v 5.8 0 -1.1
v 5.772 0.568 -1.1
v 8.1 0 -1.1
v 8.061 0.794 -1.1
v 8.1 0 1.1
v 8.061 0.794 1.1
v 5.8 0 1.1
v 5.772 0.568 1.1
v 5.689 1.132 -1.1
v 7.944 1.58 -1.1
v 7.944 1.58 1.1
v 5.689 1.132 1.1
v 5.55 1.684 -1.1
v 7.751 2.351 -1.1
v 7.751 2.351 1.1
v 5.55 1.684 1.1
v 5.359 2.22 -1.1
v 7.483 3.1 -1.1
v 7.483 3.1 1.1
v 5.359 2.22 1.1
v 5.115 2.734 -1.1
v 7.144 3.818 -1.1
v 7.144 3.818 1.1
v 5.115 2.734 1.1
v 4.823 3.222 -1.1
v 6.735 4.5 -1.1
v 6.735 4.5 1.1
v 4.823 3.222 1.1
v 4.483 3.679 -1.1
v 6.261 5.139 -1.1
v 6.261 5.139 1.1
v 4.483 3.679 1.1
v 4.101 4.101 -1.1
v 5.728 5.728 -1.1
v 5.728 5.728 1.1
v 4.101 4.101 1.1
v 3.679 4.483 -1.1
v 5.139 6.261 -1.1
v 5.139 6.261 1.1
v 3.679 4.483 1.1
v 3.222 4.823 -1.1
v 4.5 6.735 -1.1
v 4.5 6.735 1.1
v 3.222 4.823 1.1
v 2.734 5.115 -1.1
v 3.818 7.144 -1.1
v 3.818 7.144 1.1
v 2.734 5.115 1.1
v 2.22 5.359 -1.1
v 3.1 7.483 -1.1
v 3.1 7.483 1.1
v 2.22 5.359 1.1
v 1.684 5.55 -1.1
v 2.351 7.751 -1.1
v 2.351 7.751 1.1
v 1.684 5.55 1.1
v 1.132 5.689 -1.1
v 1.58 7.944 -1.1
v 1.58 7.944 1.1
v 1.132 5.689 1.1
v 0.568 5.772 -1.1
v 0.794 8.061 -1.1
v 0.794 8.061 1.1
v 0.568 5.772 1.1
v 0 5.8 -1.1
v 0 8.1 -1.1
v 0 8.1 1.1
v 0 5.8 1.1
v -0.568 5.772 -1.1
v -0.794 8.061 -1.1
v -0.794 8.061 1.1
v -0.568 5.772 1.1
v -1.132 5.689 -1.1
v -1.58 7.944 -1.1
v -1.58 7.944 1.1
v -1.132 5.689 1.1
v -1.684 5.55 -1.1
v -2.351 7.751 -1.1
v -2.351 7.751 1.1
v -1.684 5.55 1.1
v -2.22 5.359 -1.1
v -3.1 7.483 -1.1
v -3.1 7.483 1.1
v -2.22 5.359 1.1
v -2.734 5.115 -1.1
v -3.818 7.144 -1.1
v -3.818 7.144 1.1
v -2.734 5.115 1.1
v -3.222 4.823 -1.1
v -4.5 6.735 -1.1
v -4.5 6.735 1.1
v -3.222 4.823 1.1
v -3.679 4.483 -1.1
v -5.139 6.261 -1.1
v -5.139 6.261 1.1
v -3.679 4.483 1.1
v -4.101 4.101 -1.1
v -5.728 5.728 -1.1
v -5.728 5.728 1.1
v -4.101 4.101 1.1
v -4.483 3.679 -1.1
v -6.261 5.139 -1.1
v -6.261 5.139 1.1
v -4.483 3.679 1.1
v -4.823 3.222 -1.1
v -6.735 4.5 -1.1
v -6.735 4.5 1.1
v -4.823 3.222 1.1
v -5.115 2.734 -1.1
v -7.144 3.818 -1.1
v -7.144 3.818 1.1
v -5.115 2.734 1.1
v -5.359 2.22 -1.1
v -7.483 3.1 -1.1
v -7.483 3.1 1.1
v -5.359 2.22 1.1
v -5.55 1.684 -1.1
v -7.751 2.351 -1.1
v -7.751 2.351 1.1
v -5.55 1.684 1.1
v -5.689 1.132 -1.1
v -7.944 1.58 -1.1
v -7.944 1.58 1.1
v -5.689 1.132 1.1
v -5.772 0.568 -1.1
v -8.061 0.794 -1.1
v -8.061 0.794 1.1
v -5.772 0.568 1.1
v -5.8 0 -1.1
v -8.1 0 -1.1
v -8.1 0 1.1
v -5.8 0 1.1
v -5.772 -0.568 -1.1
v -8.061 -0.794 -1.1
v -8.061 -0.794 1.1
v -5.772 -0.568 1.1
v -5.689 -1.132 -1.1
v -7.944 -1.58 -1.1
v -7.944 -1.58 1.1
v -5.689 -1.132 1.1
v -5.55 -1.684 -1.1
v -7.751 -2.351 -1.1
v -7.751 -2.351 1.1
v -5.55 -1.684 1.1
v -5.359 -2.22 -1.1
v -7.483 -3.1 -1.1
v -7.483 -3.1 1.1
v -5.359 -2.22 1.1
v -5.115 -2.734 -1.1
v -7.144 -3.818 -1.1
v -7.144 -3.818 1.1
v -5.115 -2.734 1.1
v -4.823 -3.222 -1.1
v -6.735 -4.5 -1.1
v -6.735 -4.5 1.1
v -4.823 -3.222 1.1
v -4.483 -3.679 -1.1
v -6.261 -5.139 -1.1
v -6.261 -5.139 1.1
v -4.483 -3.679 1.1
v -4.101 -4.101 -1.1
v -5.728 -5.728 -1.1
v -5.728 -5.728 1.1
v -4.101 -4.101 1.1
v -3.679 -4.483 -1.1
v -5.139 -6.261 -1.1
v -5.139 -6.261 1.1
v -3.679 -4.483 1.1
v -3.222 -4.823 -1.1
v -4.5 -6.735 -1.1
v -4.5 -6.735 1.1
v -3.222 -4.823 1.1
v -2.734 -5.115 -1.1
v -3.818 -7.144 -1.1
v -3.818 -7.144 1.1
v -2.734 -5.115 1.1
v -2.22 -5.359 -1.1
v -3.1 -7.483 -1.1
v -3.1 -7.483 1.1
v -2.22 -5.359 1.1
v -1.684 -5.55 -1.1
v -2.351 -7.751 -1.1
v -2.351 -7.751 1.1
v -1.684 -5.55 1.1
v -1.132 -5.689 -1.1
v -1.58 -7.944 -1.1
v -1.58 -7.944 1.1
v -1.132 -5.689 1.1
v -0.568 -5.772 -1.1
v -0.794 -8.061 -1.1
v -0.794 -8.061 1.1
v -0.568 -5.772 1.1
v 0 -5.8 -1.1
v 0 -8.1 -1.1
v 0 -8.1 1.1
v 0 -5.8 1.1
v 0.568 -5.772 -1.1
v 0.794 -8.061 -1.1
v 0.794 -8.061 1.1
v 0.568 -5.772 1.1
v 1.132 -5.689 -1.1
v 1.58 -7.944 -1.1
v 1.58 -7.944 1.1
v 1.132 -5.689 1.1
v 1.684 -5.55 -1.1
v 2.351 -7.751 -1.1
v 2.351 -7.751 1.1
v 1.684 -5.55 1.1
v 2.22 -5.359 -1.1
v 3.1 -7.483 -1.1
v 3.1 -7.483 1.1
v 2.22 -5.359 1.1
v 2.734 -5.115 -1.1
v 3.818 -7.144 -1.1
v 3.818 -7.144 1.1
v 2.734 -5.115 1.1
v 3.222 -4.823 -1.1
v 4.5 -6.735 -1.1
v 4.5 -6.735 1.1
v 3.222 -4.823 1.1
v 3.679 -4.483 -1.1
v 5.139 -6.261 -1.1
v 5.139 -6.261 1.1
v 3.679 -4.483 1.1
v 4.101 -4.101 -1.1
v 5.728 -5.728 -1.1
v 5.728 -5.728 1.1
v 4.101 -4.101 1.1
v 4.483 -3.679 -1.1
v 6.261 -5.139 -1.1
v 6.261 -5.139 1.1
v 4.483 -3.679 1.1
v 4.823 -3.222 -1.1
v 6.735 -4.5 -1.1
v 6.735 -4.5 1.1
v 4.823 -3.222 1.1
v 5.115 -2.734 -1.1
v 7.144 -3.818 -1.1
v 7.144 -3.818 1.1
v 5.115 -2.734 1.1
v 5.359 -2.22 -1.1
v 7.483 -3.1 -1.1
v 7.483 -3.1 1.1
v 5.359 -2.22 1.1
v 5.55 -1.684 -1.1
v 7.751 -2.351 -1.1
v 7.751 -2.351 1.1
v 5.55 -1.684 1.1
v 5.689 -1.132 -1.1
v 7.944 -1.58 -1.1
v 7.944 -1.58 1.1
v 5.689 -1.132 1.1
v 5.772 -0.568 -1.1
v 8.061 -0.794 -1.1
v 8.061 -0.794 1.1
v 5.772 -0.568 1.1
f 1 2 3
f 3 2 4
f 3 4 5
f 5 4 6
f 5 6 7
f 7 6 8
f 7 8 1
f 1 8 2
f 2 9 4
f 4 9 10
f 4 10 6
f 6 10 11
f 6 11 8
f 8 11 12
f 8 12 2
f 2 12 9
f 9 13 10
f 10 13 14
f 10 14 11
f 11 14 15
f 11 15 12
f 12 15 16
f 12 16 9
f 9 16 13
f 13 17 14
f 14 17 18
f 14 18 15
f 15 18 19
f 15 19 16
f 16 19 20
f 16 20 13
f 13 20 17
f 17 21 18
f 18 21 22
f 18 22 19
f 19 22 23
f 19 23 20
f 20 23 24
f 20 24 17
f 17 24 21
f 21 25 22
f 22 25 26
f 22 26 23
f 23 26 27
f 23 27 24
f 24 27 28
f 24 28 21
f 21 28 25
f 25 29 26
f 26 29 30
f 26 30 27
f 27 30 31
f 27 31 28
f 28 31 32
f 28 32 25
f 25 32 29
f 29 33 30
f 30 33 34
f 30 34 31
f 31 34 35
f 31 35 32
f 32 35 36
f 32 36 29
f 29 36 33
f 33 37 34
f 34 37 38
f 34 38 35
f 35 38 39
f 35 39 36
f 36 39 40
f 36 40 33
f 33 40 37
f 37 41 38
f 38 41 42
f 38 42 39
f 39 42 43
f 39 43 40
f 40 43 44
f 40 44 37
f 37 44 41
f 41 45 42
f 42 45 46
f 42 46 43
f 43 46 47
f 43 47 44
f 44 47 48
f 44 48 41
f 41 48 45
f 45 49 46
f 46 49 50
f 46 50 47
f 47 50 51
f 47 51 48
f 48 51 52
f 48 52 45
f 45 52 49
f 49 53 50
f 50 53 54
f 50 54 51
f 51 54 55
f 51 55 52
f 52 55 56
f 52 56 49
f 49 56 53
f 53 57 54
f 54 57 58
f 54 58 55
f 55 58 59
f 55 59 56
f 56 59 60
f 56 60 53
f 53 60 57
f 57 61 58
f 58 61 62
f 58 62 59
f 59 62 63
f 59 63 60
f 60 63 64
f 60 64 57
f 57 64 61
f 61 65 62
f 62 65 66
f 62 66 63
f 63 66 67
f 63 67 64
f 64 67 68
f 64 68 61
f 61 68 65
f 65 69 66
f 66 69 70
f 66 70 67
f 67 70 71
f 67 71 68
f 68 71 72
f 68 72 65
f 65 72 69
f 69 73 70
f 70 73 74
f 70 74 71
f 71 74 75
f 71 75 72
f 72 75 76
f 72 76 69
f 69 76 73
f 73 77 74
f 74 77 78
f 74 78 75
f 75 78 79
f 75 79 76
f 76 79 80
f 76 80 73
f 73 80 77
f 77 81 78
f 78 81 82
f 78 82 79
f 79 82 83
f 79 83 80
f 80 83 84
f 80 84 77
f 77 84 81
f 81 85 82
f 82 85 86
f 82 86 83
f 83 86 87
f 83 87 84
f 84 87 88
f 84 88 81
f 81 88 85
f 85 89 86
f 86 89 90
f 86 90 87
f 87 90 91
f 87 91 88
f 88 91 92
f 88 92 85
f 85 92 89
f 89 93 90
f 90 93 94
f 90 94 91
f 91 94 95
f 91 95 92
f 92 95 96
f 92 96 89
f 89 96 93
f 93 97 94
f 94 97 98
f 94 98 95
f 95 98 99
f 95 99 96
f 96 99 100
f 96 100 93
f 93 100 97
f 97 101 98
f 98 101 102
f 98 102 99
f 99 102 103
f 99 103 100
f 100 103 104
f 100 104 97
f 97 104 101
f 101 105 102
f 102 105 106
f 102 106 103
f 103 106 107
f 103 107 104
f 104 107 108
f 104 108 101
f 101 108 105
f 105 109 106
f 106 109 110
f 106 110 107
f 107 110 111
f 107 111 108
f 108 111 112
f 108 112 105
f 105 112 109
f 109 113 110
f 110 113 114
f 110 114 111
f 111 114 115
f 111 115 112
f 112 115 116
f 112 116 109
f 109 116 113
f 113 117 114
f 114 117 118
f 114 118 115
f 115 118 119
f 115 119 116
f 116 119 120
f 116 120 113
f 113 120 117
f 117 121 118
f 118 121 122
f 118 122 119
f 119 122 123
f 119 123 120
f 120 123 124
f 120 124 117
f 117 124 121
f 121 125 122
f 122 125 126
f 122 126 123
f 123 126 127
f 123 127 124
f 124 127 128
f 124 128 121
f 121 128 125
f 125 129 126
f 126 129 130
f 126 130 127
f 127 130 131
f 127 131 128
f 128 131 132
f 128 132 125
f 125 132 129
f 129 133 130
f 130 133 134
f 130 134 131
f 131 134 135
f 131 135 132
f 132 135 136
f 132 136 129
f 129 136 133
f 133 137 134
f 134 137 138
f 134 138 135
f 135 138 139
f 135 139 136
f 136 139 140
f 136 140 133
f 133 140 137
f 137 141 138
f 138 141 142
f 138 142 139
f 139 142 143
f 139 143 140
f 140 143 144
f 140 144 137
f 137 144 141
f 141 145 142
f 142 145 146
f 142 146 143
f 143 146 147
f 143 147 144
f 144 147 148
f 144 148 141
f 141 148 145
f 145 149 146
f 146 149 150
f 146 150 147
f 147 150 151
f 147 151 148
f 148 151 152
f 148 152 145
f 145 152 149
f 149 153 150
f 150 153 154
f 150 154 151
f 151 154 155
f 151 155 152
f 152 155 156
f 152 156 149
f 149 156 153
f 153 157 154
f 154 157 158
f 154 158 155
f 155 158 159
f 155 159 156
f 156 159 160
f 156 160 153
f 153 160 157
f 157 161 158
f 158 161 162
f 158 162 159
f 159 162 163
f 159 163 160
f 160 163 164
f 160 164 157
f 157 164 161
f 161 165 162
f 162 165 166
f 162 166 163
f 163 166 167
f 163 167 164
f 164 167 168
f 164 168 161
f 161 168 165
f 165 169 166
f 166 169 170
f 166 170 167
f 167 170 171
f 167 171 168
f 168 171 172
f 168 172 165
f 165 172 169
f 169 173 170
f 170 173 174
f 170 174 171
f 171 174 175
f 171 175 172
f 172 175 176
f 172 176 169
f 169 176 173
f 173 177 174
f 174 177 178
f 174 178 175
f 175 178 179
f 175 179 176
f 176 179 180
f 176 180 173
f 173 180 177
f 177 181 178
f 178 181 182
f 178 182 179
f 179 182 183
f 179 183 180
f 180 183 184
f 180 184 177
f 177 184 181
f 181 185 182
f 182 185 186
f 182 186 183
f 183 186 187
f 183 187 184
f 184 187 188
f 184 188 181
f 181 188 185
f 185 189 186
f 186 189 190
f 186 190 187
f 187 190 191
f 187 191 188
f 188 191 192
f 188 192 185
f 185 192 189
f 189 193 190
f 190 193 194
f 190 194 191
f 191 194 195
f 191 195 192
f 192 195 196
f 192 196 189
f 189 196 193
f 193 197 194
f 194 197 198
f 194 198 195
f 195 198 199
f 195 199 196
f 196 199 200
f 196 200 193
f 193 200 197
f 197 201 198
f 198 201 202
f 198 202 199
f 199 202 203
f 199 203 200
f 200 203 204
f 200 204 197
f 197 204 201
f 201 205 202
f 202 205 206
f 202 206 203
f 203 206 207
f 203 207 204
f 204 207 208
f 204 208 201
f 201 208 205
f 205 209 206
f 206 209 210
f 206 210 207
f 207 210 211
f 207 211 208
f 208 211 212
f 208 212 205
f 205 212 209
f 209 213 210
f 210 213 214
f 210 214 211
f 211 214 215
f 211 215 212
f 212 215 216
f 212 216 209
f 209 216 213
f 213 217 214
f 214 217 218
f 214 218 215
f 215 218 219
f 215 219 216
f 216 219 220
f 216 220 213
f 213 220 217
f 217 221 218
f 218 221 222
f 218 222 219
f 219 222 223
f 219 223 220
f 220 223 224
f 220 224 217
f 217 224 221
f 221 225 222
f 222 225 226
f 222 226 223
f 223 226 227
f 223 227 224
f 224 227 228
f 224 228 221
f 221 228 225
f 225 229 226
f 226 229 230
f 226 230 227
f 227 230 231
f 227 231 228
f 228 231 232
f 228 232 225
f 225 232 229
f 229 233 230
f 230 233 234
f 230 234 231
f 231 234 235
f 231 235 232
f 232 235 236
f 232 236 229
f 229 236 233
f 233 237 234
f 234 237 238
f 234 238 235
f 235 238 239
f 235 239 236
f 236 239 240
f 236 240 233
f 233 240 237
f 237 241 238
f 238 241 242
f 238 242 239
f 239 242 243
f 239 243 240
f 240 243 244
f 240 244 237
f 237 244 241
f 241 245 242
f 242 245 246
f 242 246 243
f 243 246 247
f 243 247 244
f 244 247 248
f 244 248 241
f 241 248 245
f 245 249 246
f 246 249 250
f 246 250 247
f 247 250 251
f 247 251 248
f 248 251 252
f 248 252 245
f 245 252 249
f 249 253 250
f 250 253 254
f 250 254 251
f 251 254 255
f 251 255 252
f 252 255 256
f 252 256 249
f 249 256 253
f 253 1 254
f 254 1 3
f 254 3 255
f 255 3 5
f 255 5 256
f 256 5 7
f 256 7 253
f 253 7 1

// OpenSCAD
/*
Yamper V11 mesh source for yamper_v11_round_inmp441_mic_retainer.stl
Units: millimeters

This source keeps the restored V11 STL geometry as a plain OpenSCAD polyhedron.
It is not a new redesign. It exists so the CAD source, STL, and STEP exports stay together.
*/

module yamper_v11_round_inmp441_mic_retainer() {
    pts = [
        [5.8, 0, -1.1],
        [5.772071, 0.568499, -1.1],
        [8.1, 0, -1.1],
        [8.060996, 0.793939, -1.1],
        [8.1, 0, 1.1],
        [8.060996, 0.793939, 1.1],
        [5.8, 0, 1.1],
        [5.772071, 0.568499, 1.1],
        [5.688555, 1.131524, -1.1],
        [7.944361, 1.580232, -1.1],
        [7.944361, 1.580232, 1.1],
        [5.688555, 1.131524, 1.1],
        [5.550254, 1.683651, -1.1],
        [7.751217, 2.351306, -1.1],
        [7.751217, 2.351306, 1.1],
        [5.550254, 1.683651, 1.1],
        [5.358501, 2.219564, -1.1],
        [7.483424, 3.099736, -1.1],
        [7.483424, 3.099736, 1.1],
        [5.358501, 2.219564, 1.1],
        [5.115143, 2.734101, -1.1],
        [7.143562, 3.818314, -1.1],
        [7.143562, 3.818314, 1.1],
        [5.115143, 2.734101, 1.1],
        [4.822524, 3.222307, -1.1],
        [6.734904, 4.500119, -1.1],
        [6.734904, 4.500119, 1.1],
        [4.822524, 3.222307, 1.1],
        [4.48346, 3.679481, -1.1],
        [6.261384, 5.138586, -1.1],
        [6.261384, 5.138586, 1.1],
        [4.48346, 3.679481, 1.1],
        [4.101219, 4.101219, -1.1],
        [5.727565, 5.727565, -1.1],
        [5.727565, 5.727565, 1.1],
        [4.101219, 4.101219, 1.1],
        [3.679481, 4.48346, -1.1],
        [5.138586, 6.261384, -1.1],
        [5.138586, 6.261384, 1.1],
        [3.679481, 4.48346, 1.1],
        [3.222307, 4.822524, -1.1],
        [4.500119, 6.734904, -1.1],
        [4.500119, 6.734904, 1.1],
        [3.222307, 4.822524, 1.1],
        [2.734101, 5.115143, -1.1],
        [3.818314, 7.143562, -1.1],
        [3.818314, 7.143562, 1.1],
        [2.734101, 5.115143, 1.1],
        [2.219564, 5.358501, -1.1],
        [3.099736, 7.483424, -1.1],
        [3.099736, 7.483424, 1.1],
        [2.219564, 5.358501, 1.1],
        [1.683651, 5.550254, -1.1],
        [2.351306, 7.751217, -1.1],
        [2.351306, 7.751217, 1.1],
        [1.683651, 5.550254, 1.1],
        [1.131524, 5.688555, -1.1],
        [1.580232, 7.944361, -1.1],
        [1.580232, 7.944361, 1.1],
        [1.131524, 5.688555, 1.1],
        [0.568499, 5.772071, -1.1],
        [0.793939, 8.060996, -1.1],
        [0.793939, 8.060996, 1.1],
        [0.568499, 5.772071, 1.1],
        [0, 5.8, -1.1],
        [0, 8.1, -1.1],
        [0, 8.1, 1.1],
        [0, 5.8, 1.1],
        [-0.568499, 5.772071, -1.1],
        [-0.793939, 8.060996, -1.1],
        [-0.793939, 8.060996, 1.1],
        [-0.568499, 5.772071, 1.1],
        [-1.131524, 5.688555, -1.1],
        [-1.580232, 7.944361, -1.1],
        [-1.580232, 7.944361, 1.1],
        [-1.131524, 5.688555, 1.1],
        [-1.683651, 5.550254, -1.1],
        [-2.351306, 7.751217, -1.1],
        [-2.351306, 7.751217, 1.1],
        [-1.683651, 5.550254, 1.1],
        [-2.219564, 5.358501, -1.1],
        [-3.099736, 7.483424, -1.1],
        [-3.099736, 7.483424, 1.1],
        [-2.219564, 5.358501, 1.1],
        [-2.734101, 5.115143, -1.1],
        [-3.818314, 7.143562, -1.1],
        [-3.818314, 7.143562, 1.1],
        [-2.734101, 5.115143, 1.1],
        [-3.222307, 4.822524, -1.1],
        [-4.500119, 6.734904, -1.1],
        [-4.500119, 6.734904, 1.1],
        [-3.222307, 4.822524, 1.1],
        [-3.679481, 4.48346, -1.1],
        [-5.138586, 6.261384, -1.1],
        [-5.138586, 6.261384, 1.1],
        [-3.679481, 4.48346, 1.1],
        [-4.101219, 4.101219, -1.1],
        [-5.727565, 5.727565, -1.1],
        [-5.727565, 5.727565, 1.1],
        [-4.101219, 4.101219, 1.1],
        [-4.48346, 3.679481, -1.1],
        [-6.261384, 5.138586, -1.1],
        [-6.261384, 5.138586, 1.1],
        [-4.48346, 3.679481, 1.1],
        [-4.822524, 3.222307, -1.1],
        [-6.734904, 4.500119, -1.1],
        [-6.734904, 4.500119, 1.1],
        [-4.822524, 3.222307, 1.1],
        [-5.115143, 2.734101, -1.1],
        [-7.143562, 3.818314, -1.1],
        [-7.143562, 3.818314, 1.1],
        [-5.115143, 2.734101, 1.1],
        [-5.358501, 2.219564, -1.1],
        [-7.483424, 3.099736, -1.1],
        [-7.483424, 3.099736, 1.1],
        [-5.358501, 2.219564, 1.1],
        [-5.550254, 1.683651, -1.1],
        [-7.751217, 2.351306, -1.1],
        [-7.751217, 2.351306, 1.1],
        [-5.550254, 1.683651, 1.1],
        [-5.688555, 1.131524, -1.1],
        [-7.944361, 1.580232, -1.1],
        [-7.944361, 1.580232, 1.1],
        [-5.688555, 1.131524, 1.1],
        [-5.772071, 0.568499, -1.1],
        [-8.060996, 0.793939, -1.1],
        [-8.060996, 0.793939, 1.1],
        [-5.772071, 0.568499, 1.1],
        [-5.8, 0, -1.1],
        [-8.1, 0, -1.1],
        [-8.1, 0, 1.1],
        [-5.8, 0, 1.1],
        [-5.772071, -0.568499, -1.1],
        [-8.060996, -0.793939, -1.1],
        [-8.060996, -0.793939, 1.1],
        [-5.772071, -0.568499, 1.1],
        [-5.688555, -1.131524, -1.1],
        [-7.944361, -1.580232, -1.1],
        [-7.944361, -1.580232, 1.1],
        [-5.688555, -1.131524, 1.1],
        [-5.550254, -1.683651, -1.1],
        [-7.751217, -2.351306, -1.1],
        [-7.751217, -2.351306, 1.1],
        [-5.550254, -1.683651, 1.1],
        [-5.358501, -2.219564, -1.1],
        [-7.483424, -3.099736, -1.1],
        [-7.483424, -3.099736, 1.1],
        [-5.358501, -2.219564, 1.1],
        [-5.115143, -2.734101, -1.1],
        [-7.143562, -3.818314, -1.1],
        [-7.143562, -3.818314, 1.1],
        [-5.115143, -2.734101, 1.1],
        [-4.822524, -3.222307, -1.1],
        [-6.734904, -4.500119, -1.1],
        [-6.734904, -4.500119, 1.1],
        [-4.822524, -3.222307, 1.1],
        [-4.48346, -3.679481, -1.1],
        [-6.261384, -5.138586, -1.1],
        [-6.261384, -5.138586, 1.1],
        [-4.48346, -3.679481, 1.1],
        [-4.101219, -4.101219, -1.1],
        [-5.727565, -5.727565, -1.1],
        [-5.727565, -5.727565, 1.1],
        [-4.101219, -4.101219, 1.1],
        [-3.679481, -4.48346, -1.1],
        [-5.138586, -6.261384, -1.1],
        [-5.138586, -6.261384, 1.1],
        [-3.679481, -4.48346, 1.1],
        [-3.222307, -4.822524, -1.1],
        [-4.500119, -6.734904, -1.1],
        [-4.500119, -6.734904, 1.1],
        [-3.222307, -4.822524, 1.1],
        [-2.734101, -5.115143, -1.1],
        [-3.818314, -7.143562, -1.1],
        [-3.818314, -7.143562, 1.1],
        [-2.734101, -5.115143, 1.1],
        [-2.219564, -5.358501, -1.1],
        [-3.099736, -7.483424, -1.1],
        [-3.099736, -7.483424, 1.1],
        [-2.219564, -5.358501, 1.1],
        [-1.683651, -5.550254, -1.1],
        [-2.351306, -7.751217, -1.1],
        [-2.351306, -7.751217, 1.1],
        [-1.683651, -5.550254, 1.1],
        [-1.131524, -5.688555, -1.1],
        [-1.580232, -7.944361, -1.1],
        [-1.580232, -7.944361, 1.1],
        [-1.131524, -5.688555, 1.1],
        [-0.568499, -5.772071, -1.1],
        [-0.793939, -8.060996, -1.1],
        [-0.793939, -8.060996, 1.1],
        [-0.568499, -5.772071, 1.1],
        [0, -5.8, -1.1],
        [0, -8.1, -1.1],
        [0, -8.1, 1.1],
        [0, -5.8, 1.1],
        [0.568499, -5.772071, -1.1],
        [0.793939, -8.060996, -1.1],
        [0.793939, -8.060996, 1.1],
        [0.568499, -5.772071, 1.1],
        [1.131524, -5.688555, -1.1],
        [1.580232, -7.944361, -1.1],
        [1.580232, -7.944361, 1.1],
        [1.131524, -5.688555, 1.1],
        [1.683651, -5.550254, -1.1],
        [2.351306, -7.751217, -1.1],
        [2.351306, -7.751217, 1.1],
        [1.683651, -5.550254, 1.1],
        [2.219564, -5.358501, -1.1],
        [3.099736, -7.483424, -1.1],
        [3.099736, -7.483424, 1.1],
        [2.219564, -5.358501, 1.1],
        [2.734101, -5.115143, -1.1],
        [3.818314, -7.143562, -1.1],
        [3.818314, -7.143562, 1.1],
        [2.734101, -5.115143, 1.1],
        [3.222307, -4.822524, -1.1],
        [4.500119, -6.734904, -1.1],
        [4.500119, -6.734904, 1.1],
        [3.222307, -4.822524, 1.1],
        [3.679481, -4.48346, -1.1],
        [5.138586, -6.261384, -1.1],
        [5.138586, -6.261384, 1.1],
        [3.679481, -4.48346, 1.1],
        [4.101219, -4.101219, -1.1],
        [5.727565, -5.727565, -1.1],
        [5.727565, -5.727565, 1.1],
        [4.101219, -4.101219, 1.1],
        [4.48346, -3.679481, -1.1],
        [6.261384, -5.138586, -1.1],
        [6.261384, -5.138586, 1.1],
        [4.48346, -3.679481, 1.1],
        [4.822524, -3.222307, -1.1],
        [6.734904, -4.500119, -1.1],
        [6.734904, -4.500119, 1.1],
        [4.822524, -3.222307, 1.1],
        [5.115143, -2.734101, -1.1],
        [7.143562, -3.818314, -1.1],
        [7.143562, -3.818314, 1.1],
        [5.115143, -2.734101, 1.1],
        [5.358501, -2.219564, -1.1],
        [7.483424, -3.099736, -1.1],
        [7.483424, -3.099736, 1.1],
        [5.358501, -2.219564, 1.1],
        [5.550254, -1.683651, -1.1],
        [7.751217, -2.351306, -1.1],
        [7.751217, -2.351306, 1.1],
        [5.550254, -1.683651, 1.1],
        [5.688555, -1.131524, -1.1],
        [7.944361, -1.580232, -1.1],
        [7.944361, -1.580232, 1.1],
        [5.688555, -1.131524, 1.1],
        [5.772071, -0.568499, -1.1],
        [8.060996, -0.793939, -1.1],
        [8.060996, -0.793939, 1.1],
        [5.772071, -0.568499, 1.1],
    ];

    tris = [
        [0, 1, 2],
        [2, 1, 3],
        [2, 3, 4],
        [4, 3, 5],
        [4, 5, 6],
        [6, 5, 7],
        [6, 7, 0],
        [0, 7, 1],
        [1, 8, 3],
        [3, 8, 9],
        [3, 9, 5],
        [5, 9, 10],
        [5, 10, 7],
        [7, 10, 11],
        [7, 11, 1],
        [1, 11, 8],
        [8, 12, 9],
        [9, 12, 13],
        [9, 13, 10],
        [10, 13, 14],
        [10, 14, 11],
        [11, 14, 15],
        [11, 15, 8],
        [8, 15, 12],
        [12, 16, 13],
        [13, 16, 17],
        [13, 17, 14],
        [14, 17, 18],
        [14, 18, 15],
        [15, 18, 19],
        [15, 19, 12],
        [12, 19, 16],
        [16, 20, 17],
        [17, 20, 21],
        [17, 21, 18],
        [18, 21, 22],
        [18, 22, 19],
        [19, 22, 23],
        [19, 23, 16],
        [16, 23, 20],
        [20, 24, 21],
        [21, 24, 25],
        [21, 25, 22],
        [22, 25, 26],
        [22, 26, 23],
        [23, 26, 27],
        [23, 27, 20],
        [20, 27, 24],
        [24, 28, 25],
        [25, 28, 29],
        [25, 29, 26],
        [26, 29, 30],
        [26, 30, 27],
        [27, 30, 31],
        [27, 31, 24],
        [24, 31, 28],
        [28, 32, 29],
        [29, 32, 33],
        [29, 33, 30],
        [30, 33, 34],
        [30, 34, 31],
        [31, 34, 35],
        [31, 35, 28],
        [28, 35, 32],
        [32, 36, 33],
        [33, 36, 37],
        [33, 37, 34],
        [34, 37, 38],
        [34, 38, 35],
        [35, 38, 39],
        [35, 39, 32],
        [32, 39, 36],
        [36, 40, 37],
        [37, 40, 41],
        [37, 41, 38],
        [38, 41, 42],
        [38, 42, 39],
        [39, 42, 43],
        [39, 43, 36],
        [36, 43, 40],
        [40, 44, 41],
        [41, 44, 45],
        [41, 45, 42],
        [42, 45, 46],
        [42, 46, 43],
        [43, 46, 47],
        [43, 47, 40],
        [40, 47, 44],
        [44, 48, 45],
        [45, 48, 49],
        [45, 49, 46],
        [46, 49, 50],
        [46, 50, 47],
        [47, 50, 51],
        [47, 51, 44],
        [44, 51, 48],
        [48, 52, 49],
        [49, 52, 53],
        [49, 53, 50],
        [50, 53, 54],
        [50, 54, 51],
        [51, 54, 55],
        [51, 55, 48],
        [48, 55, 52],
        [52, 56, 53],
        [53, 56, 57],
        [53, 57, 54],
        [54, 57, 58],
        [54, 58, 55],
        [55, 58, 59],
        [55, 59, 52],
        [52, 59, 56],
        [56, 60, 57],
        [57, 60, 61],
        [57, 61, 58],
        [58, 61, 62],
        [58, 62, 59],
        [59, 62, 63],
        [59, 63, 56],
        [56, 63, 60],
        [60, 64, 61],
        [61, 64, 65],
        [61, 65, 62],
        [62, 65, 66],
        [62, 66, 63],
        [63, 66, 67],
        [63, 67, 60],
        [60, 67, 64],
        [64, 68, 65],
        [65, 68, 69],
        [65, 69, 66],
        [66, 69, 70],
        [66, 70, 67],
        [67, 70, 71],
        [67, 71, 64],
        [64, 71, 68],
        [68, 72, 69],
        [69, 72, 73],
        [69, 73, 70],
        [70, 73, 74],
        [70, 74, 71],
        [71, 74, 75],
        [71, 75, 68],
        [68, 75, 72],
        [72, 76, 73],
        [73, 76, 77],
        [73, 77, 74],
        [74, 77, 78],
        [74, 78, 75],
        [75, 78, 79],
        [75, 79, 72],
        [72, 79, 76],
        [76, 80, 77],
        [77, 80, 81],
        [77, 81, 78],
        [78, 81, 82],
        [78, 82, 79],
        [79, 82, 83],
        [79, 83, 76],
        [76, 83, 80],
        [80, 84, 81],
        [81, 84, 85],
        [81, 85, 82],
        [82, 85, 86],
        [82, 86, 83],
        [83, 86, 87],
        [83, 87, 80],
        [80, 87, 84],
        [84, 88, 85],
        [85, 88, 89],
        [85, 89, 86],
        [86, 89, 90],
        [86, 90, 87],
        [87, 90, 91],
        [87, 91, 84],
        [84, 91, 88],
        [88, 92, 89],
        [89, 92, 93],
        [89, 93, 90],
        [90, 93, 94],
        [90, 94, 91],
        [91, 94, 95],
        [91, 95, 88],
        [88, 95, 92],
        [92, 96, 93],
        [93, 96, 97],
        [93, 97, 94],
        [94, 97, 98],
        [94, 98, 95],
        [95, 98, 99],
        [95, 99, 92],
        [92, 99, 96],
        [96, 100, 97],
        [97, 100, 101],
        [97, 101, 98],
        [98, 101, 102],
        [98, 102, 99],
        [99, 102, 103],
        [99, 103, 96],
        [96, 103, 100],
        [100, 104, 101],
        [101, 104, 105],
        [101, 105, 102],
        [102, 105, 106],
        [102, 106, 103],
        [103, 106, 107],
        [103, 107, 100],
        [100, 107, 104],
        [104, 108, 105],
        [105, 108, 109],
        [105, 109, 106],
        [106, 109, 110],
        [106, 110, 107],
        [107, 110, 111],
        [107, 111, 104],
        [104, 111, 108],
        [108, 112, 109],
        [109, 112, 113],
        [109, 113, 110],
        [110, 113, 114],
        [110, 114, 111],
        [111, 114, 115],
        [111, 115, 108],
        [108, 115, 112],
        [112, 116, 113],
        [113, 116, 117],
        [113, 117, 114],
        [114, 117, 118],
        [114, 118, 115],
        [115, 118, 119],
        [115, 119, 112],
        [112, 119, 116],
        [116, 120, 117],
        [117, 120, 121],
        [117, 121, 118],
        [118, 121, 122],
        [118, 122, 119],
        [119, 122, 123],
        [119, 123, 116],
        [116, 123, 120],
        [120, 124, 121],
        [121, 124, 125],
        [121, 125, 122],
        [122, 125, 126],
        [122, 126, 123],
        [123, 126, 127],
        [123, 127, 120],
        [120, 127, 124],
        [124, 128, 125],
        [125, 128, 129],
        [125, 129, 126],
        [126, 129, 130],
        [126, 130, 127],
        [127, 130, 131],
        [127, 131, 124],
        [124, 131, 128],
        [128, 132, 129],
        [129, 132, 133],
        [129, 133, 130],
        [130, 133, 134],
        [130, 134, 131],
        [131, 134, 135],
        [131, 135, 128],
        [128, 135, 132],
        [132, 136, 133],
        [133, 136, 137],
        [133, 137, 134],
        [134, 137, 138],
        [134, 138, 135],
        [135, 138, 139],
        [135, 139, 132],
        [132, 139, 136],
        [136, 140, 137],
        [137, 140, 141],
        [137, 141, 138],
        [138, 141, 142],
        [138, 142, 139],
        [139, 142, 143],
        [139, 143, 136],
        [136, 143, 140],
        [140, 144, 141],
        [141, 144, 145],
        [141, 145, 142],
        [142, 145, 146],
        [142, 146, 143],
        [143, 146, 147],
        [143, 147, 140],
        [140, 147, 144],
        [144, 148, 145],
        [145, 148, 149],
        [145, 149, 146],
        [146, 149, 150],
        [146, 150, 147],
        [147, 150, 151],
        [147, 151, 144],
        [144, 151, 148],
        [148, 152, 149],
        [149, 152, 153],
        [149, 153, 150],
        [150, 153, 154],
        [150, 154, 151],
        [151, 154, 155],
        [151, 155, 148],
        [148, 155, 152],
        [152, 156, 153],
        [153, 156, 157],
        [153, 157, 154],
        [154, 157, 158],
        [154, 158, 155],
        [155, 158, 159],
        [155, 159, 152],
        [152, 159, 156],
        [156, 160, 157],
        [157, 160, 161],
        [157, 161, 158],
        [158, 161, 162],
        [158, 162, 159],
        [159, 162, 163],
        [159, 163, 156],
        [156, 163, 160],
        [160, 164, 161],
        [161, 164, 165],
        [161, 165, 162],
        [162, 165, 166],
        [162, 166, 163],
        [163, 166, 167],
        [163, 167, 160],
        [160, 167, 164],
        [164, 168, 165],
        [165, 168, 169],
        [165, 169, 166],
        [166, 169, 170],
        [166, 170, 167],
        [167, 170, 171],
        [167, 171, 164],
        [164, 171, 168],
        [168, 172, 169],
        [169, 172, 173],
        [169, 173, 170],
        [170, 173, 174],
        [170, 174, 171],
        [171, 174, 175],
        [171, 175, 168],
        [168, 175, 172],
        [172, 176, 173],
        [173, 176, 177],
        [173, 177, 174],
        [174, 177, 178],
        [174, 178, 175],
        [175, 178, 179],
        [175, 179, 172],
        [172, 179, 176],
        [176, 180, 177],
        [177, 180, 181],
        [177, 181, 178],
        [178, 181, 182],
        [178, 182, 179],
        [179, 182, 183],
        [179, 183, 176],
        [176, 183, 180],
        [180, 184, 181],
        [181, 184, 185],
        [181, 185, 182],
        [182, 185, 186],
        [182, 186, 183],
        [183, 186, 187],
        [183, 187, 180],
        [180, 187, 184],
        [184, 188, 185],
        [185, 188, 189],
        [185, 189, 186],
        [186, 189, 190],
        [186, 190, 187],
        [187, 190, 191],
        [187, 191, 184],
        [184, 191, 188],
        [188, 192, 189],
        [189, 192, 193],
        [189, 193, 190],
        [190, 193, 194],
        [190, 194, 191],
        [191, 194, 195],
        [191, 195, 188],
        [188, 195, 192],
        [192, 196, 193],
        [193, 196, 197],
        [193, 197, 194],
        [194, 197, 198],
        [194, 198, 195],
        [195, 198, 199],
        [195, 199, 192],
        [192, 199, 196],
        [196, 200, 197],
        [197, 200, 201],
        [197, 201, 198],
        [198, 201, 202],
        [198, 202, 199],
        [199, 202, 203],
        [199, 203, 196],
        [196, 203, 200],
        [200, 204, 201],
        [201, 204, 205],
        [201, 205, 202],
        [202, 205, 206],
        [202, 206, 203],
        [203, 206, 207],
        [203, 207, 200],
        [200, 207, 204],
        [204, 208, 205],
        [205, 208, 209],
        [205, 209, 206],
        [206, 209, 210],
        [206, 210, 207],
        [207, 210, 211],
        [207, 211, 204],
        [204, 211, 208],
        [208, 212, 209],
        [209, 212, 213],
        [209, 213, 210],
        [210, 213, 214],
        [210, 214, 211],
        [211, 214, 215],
        [211, 215, 208],
        [208, 215, 212],
        [212, 216, 213],
        [213, 216, 217],
        [213, 217, 214],
        [214, 217, 218],
        [214, 218, 215],
        [215, 218, 219],
        [215, 219, 212],
        [212, 219, 216],
        [216, 220, 217],
        [217, 220, 221],
        [217, 221, 218],
        [218, 221, 222],
        [218, 222, 219],
        [219, 222, 223],
        [219, 223, 216],
        [216, 223, 220],
        [220, 224, 221],
        [221, 224, 225],
        [221, 225, 222],
        [222, 225, 226],
        [222, 226, 223],
        [223, 226, 227],
        [223, 227, 220],
        [220, 227, 224],
        [224, 228, 225],
        [225, 228, 229],
        [225, 229, 226],
        [226, 229, 230],
        [226, 230, 227],
        [227, 230, 231],
        [227, 231, 224],
        [224, 231, 228],
        [228, 232, 229],
        [229, 232, 233],
        [229, 233, 230],
        [230, 233, 234],
        [230, 234, 231],
        [231, 234, 235],
        [231, 235, 228],
        [228, 235, 232],
        [232, 236, 233],
        [233, 236, 237],
        [233, 237, 234],
        [234, 237, 238],
        [234, 238, 235],
        [235, 238, 239],
        [235, 239, 232],
        [232, 239, 236],
        [236, 240, 237],
        [237, 240, 241],
        [237, 241, 238],
        [238, 241, 242],
        [238, 242, 239],
        [239, 242, 243],
        [239, 243, 236],
        [236, 243, 240],
        [240, 244, 241],
        [241, 244, 245],
        [241, 245, 242],
        [242, 245, 246],
        [242, 246, 243],
        [243, 246, 247],
        [243, 247, 240],
        [240, 247, 244],
        [244, 248, 245],
        [245, 248, 249],
        [245, 249, 246],
        [246, 249, 250],
        [246, 250, 247],
        [247, 250, 251],
        [247, 251, 244],
        [244, 251, 248],
        [248, 252, 249],
        [249, 252, 253],
        [249, 253, 250],
        [250, 253, 254],
        [250, 254, 251],
        [251, 254, 255],
        [251, 255, 248],
        [248, 255, 252],
        [252, 0, 253],
        [253, 0, 2],
        [253, 2, 254],
        [254, 2, 4],
        [254, 4, 255],
        [255, 4, 6],
        [255, 6, 252],
        [252, 6, 0],
    ];

    polyhedron(points = pts, faces = tris, convexity = 10);
}

yamper_v11_round_inmp441_mic_retainer();
